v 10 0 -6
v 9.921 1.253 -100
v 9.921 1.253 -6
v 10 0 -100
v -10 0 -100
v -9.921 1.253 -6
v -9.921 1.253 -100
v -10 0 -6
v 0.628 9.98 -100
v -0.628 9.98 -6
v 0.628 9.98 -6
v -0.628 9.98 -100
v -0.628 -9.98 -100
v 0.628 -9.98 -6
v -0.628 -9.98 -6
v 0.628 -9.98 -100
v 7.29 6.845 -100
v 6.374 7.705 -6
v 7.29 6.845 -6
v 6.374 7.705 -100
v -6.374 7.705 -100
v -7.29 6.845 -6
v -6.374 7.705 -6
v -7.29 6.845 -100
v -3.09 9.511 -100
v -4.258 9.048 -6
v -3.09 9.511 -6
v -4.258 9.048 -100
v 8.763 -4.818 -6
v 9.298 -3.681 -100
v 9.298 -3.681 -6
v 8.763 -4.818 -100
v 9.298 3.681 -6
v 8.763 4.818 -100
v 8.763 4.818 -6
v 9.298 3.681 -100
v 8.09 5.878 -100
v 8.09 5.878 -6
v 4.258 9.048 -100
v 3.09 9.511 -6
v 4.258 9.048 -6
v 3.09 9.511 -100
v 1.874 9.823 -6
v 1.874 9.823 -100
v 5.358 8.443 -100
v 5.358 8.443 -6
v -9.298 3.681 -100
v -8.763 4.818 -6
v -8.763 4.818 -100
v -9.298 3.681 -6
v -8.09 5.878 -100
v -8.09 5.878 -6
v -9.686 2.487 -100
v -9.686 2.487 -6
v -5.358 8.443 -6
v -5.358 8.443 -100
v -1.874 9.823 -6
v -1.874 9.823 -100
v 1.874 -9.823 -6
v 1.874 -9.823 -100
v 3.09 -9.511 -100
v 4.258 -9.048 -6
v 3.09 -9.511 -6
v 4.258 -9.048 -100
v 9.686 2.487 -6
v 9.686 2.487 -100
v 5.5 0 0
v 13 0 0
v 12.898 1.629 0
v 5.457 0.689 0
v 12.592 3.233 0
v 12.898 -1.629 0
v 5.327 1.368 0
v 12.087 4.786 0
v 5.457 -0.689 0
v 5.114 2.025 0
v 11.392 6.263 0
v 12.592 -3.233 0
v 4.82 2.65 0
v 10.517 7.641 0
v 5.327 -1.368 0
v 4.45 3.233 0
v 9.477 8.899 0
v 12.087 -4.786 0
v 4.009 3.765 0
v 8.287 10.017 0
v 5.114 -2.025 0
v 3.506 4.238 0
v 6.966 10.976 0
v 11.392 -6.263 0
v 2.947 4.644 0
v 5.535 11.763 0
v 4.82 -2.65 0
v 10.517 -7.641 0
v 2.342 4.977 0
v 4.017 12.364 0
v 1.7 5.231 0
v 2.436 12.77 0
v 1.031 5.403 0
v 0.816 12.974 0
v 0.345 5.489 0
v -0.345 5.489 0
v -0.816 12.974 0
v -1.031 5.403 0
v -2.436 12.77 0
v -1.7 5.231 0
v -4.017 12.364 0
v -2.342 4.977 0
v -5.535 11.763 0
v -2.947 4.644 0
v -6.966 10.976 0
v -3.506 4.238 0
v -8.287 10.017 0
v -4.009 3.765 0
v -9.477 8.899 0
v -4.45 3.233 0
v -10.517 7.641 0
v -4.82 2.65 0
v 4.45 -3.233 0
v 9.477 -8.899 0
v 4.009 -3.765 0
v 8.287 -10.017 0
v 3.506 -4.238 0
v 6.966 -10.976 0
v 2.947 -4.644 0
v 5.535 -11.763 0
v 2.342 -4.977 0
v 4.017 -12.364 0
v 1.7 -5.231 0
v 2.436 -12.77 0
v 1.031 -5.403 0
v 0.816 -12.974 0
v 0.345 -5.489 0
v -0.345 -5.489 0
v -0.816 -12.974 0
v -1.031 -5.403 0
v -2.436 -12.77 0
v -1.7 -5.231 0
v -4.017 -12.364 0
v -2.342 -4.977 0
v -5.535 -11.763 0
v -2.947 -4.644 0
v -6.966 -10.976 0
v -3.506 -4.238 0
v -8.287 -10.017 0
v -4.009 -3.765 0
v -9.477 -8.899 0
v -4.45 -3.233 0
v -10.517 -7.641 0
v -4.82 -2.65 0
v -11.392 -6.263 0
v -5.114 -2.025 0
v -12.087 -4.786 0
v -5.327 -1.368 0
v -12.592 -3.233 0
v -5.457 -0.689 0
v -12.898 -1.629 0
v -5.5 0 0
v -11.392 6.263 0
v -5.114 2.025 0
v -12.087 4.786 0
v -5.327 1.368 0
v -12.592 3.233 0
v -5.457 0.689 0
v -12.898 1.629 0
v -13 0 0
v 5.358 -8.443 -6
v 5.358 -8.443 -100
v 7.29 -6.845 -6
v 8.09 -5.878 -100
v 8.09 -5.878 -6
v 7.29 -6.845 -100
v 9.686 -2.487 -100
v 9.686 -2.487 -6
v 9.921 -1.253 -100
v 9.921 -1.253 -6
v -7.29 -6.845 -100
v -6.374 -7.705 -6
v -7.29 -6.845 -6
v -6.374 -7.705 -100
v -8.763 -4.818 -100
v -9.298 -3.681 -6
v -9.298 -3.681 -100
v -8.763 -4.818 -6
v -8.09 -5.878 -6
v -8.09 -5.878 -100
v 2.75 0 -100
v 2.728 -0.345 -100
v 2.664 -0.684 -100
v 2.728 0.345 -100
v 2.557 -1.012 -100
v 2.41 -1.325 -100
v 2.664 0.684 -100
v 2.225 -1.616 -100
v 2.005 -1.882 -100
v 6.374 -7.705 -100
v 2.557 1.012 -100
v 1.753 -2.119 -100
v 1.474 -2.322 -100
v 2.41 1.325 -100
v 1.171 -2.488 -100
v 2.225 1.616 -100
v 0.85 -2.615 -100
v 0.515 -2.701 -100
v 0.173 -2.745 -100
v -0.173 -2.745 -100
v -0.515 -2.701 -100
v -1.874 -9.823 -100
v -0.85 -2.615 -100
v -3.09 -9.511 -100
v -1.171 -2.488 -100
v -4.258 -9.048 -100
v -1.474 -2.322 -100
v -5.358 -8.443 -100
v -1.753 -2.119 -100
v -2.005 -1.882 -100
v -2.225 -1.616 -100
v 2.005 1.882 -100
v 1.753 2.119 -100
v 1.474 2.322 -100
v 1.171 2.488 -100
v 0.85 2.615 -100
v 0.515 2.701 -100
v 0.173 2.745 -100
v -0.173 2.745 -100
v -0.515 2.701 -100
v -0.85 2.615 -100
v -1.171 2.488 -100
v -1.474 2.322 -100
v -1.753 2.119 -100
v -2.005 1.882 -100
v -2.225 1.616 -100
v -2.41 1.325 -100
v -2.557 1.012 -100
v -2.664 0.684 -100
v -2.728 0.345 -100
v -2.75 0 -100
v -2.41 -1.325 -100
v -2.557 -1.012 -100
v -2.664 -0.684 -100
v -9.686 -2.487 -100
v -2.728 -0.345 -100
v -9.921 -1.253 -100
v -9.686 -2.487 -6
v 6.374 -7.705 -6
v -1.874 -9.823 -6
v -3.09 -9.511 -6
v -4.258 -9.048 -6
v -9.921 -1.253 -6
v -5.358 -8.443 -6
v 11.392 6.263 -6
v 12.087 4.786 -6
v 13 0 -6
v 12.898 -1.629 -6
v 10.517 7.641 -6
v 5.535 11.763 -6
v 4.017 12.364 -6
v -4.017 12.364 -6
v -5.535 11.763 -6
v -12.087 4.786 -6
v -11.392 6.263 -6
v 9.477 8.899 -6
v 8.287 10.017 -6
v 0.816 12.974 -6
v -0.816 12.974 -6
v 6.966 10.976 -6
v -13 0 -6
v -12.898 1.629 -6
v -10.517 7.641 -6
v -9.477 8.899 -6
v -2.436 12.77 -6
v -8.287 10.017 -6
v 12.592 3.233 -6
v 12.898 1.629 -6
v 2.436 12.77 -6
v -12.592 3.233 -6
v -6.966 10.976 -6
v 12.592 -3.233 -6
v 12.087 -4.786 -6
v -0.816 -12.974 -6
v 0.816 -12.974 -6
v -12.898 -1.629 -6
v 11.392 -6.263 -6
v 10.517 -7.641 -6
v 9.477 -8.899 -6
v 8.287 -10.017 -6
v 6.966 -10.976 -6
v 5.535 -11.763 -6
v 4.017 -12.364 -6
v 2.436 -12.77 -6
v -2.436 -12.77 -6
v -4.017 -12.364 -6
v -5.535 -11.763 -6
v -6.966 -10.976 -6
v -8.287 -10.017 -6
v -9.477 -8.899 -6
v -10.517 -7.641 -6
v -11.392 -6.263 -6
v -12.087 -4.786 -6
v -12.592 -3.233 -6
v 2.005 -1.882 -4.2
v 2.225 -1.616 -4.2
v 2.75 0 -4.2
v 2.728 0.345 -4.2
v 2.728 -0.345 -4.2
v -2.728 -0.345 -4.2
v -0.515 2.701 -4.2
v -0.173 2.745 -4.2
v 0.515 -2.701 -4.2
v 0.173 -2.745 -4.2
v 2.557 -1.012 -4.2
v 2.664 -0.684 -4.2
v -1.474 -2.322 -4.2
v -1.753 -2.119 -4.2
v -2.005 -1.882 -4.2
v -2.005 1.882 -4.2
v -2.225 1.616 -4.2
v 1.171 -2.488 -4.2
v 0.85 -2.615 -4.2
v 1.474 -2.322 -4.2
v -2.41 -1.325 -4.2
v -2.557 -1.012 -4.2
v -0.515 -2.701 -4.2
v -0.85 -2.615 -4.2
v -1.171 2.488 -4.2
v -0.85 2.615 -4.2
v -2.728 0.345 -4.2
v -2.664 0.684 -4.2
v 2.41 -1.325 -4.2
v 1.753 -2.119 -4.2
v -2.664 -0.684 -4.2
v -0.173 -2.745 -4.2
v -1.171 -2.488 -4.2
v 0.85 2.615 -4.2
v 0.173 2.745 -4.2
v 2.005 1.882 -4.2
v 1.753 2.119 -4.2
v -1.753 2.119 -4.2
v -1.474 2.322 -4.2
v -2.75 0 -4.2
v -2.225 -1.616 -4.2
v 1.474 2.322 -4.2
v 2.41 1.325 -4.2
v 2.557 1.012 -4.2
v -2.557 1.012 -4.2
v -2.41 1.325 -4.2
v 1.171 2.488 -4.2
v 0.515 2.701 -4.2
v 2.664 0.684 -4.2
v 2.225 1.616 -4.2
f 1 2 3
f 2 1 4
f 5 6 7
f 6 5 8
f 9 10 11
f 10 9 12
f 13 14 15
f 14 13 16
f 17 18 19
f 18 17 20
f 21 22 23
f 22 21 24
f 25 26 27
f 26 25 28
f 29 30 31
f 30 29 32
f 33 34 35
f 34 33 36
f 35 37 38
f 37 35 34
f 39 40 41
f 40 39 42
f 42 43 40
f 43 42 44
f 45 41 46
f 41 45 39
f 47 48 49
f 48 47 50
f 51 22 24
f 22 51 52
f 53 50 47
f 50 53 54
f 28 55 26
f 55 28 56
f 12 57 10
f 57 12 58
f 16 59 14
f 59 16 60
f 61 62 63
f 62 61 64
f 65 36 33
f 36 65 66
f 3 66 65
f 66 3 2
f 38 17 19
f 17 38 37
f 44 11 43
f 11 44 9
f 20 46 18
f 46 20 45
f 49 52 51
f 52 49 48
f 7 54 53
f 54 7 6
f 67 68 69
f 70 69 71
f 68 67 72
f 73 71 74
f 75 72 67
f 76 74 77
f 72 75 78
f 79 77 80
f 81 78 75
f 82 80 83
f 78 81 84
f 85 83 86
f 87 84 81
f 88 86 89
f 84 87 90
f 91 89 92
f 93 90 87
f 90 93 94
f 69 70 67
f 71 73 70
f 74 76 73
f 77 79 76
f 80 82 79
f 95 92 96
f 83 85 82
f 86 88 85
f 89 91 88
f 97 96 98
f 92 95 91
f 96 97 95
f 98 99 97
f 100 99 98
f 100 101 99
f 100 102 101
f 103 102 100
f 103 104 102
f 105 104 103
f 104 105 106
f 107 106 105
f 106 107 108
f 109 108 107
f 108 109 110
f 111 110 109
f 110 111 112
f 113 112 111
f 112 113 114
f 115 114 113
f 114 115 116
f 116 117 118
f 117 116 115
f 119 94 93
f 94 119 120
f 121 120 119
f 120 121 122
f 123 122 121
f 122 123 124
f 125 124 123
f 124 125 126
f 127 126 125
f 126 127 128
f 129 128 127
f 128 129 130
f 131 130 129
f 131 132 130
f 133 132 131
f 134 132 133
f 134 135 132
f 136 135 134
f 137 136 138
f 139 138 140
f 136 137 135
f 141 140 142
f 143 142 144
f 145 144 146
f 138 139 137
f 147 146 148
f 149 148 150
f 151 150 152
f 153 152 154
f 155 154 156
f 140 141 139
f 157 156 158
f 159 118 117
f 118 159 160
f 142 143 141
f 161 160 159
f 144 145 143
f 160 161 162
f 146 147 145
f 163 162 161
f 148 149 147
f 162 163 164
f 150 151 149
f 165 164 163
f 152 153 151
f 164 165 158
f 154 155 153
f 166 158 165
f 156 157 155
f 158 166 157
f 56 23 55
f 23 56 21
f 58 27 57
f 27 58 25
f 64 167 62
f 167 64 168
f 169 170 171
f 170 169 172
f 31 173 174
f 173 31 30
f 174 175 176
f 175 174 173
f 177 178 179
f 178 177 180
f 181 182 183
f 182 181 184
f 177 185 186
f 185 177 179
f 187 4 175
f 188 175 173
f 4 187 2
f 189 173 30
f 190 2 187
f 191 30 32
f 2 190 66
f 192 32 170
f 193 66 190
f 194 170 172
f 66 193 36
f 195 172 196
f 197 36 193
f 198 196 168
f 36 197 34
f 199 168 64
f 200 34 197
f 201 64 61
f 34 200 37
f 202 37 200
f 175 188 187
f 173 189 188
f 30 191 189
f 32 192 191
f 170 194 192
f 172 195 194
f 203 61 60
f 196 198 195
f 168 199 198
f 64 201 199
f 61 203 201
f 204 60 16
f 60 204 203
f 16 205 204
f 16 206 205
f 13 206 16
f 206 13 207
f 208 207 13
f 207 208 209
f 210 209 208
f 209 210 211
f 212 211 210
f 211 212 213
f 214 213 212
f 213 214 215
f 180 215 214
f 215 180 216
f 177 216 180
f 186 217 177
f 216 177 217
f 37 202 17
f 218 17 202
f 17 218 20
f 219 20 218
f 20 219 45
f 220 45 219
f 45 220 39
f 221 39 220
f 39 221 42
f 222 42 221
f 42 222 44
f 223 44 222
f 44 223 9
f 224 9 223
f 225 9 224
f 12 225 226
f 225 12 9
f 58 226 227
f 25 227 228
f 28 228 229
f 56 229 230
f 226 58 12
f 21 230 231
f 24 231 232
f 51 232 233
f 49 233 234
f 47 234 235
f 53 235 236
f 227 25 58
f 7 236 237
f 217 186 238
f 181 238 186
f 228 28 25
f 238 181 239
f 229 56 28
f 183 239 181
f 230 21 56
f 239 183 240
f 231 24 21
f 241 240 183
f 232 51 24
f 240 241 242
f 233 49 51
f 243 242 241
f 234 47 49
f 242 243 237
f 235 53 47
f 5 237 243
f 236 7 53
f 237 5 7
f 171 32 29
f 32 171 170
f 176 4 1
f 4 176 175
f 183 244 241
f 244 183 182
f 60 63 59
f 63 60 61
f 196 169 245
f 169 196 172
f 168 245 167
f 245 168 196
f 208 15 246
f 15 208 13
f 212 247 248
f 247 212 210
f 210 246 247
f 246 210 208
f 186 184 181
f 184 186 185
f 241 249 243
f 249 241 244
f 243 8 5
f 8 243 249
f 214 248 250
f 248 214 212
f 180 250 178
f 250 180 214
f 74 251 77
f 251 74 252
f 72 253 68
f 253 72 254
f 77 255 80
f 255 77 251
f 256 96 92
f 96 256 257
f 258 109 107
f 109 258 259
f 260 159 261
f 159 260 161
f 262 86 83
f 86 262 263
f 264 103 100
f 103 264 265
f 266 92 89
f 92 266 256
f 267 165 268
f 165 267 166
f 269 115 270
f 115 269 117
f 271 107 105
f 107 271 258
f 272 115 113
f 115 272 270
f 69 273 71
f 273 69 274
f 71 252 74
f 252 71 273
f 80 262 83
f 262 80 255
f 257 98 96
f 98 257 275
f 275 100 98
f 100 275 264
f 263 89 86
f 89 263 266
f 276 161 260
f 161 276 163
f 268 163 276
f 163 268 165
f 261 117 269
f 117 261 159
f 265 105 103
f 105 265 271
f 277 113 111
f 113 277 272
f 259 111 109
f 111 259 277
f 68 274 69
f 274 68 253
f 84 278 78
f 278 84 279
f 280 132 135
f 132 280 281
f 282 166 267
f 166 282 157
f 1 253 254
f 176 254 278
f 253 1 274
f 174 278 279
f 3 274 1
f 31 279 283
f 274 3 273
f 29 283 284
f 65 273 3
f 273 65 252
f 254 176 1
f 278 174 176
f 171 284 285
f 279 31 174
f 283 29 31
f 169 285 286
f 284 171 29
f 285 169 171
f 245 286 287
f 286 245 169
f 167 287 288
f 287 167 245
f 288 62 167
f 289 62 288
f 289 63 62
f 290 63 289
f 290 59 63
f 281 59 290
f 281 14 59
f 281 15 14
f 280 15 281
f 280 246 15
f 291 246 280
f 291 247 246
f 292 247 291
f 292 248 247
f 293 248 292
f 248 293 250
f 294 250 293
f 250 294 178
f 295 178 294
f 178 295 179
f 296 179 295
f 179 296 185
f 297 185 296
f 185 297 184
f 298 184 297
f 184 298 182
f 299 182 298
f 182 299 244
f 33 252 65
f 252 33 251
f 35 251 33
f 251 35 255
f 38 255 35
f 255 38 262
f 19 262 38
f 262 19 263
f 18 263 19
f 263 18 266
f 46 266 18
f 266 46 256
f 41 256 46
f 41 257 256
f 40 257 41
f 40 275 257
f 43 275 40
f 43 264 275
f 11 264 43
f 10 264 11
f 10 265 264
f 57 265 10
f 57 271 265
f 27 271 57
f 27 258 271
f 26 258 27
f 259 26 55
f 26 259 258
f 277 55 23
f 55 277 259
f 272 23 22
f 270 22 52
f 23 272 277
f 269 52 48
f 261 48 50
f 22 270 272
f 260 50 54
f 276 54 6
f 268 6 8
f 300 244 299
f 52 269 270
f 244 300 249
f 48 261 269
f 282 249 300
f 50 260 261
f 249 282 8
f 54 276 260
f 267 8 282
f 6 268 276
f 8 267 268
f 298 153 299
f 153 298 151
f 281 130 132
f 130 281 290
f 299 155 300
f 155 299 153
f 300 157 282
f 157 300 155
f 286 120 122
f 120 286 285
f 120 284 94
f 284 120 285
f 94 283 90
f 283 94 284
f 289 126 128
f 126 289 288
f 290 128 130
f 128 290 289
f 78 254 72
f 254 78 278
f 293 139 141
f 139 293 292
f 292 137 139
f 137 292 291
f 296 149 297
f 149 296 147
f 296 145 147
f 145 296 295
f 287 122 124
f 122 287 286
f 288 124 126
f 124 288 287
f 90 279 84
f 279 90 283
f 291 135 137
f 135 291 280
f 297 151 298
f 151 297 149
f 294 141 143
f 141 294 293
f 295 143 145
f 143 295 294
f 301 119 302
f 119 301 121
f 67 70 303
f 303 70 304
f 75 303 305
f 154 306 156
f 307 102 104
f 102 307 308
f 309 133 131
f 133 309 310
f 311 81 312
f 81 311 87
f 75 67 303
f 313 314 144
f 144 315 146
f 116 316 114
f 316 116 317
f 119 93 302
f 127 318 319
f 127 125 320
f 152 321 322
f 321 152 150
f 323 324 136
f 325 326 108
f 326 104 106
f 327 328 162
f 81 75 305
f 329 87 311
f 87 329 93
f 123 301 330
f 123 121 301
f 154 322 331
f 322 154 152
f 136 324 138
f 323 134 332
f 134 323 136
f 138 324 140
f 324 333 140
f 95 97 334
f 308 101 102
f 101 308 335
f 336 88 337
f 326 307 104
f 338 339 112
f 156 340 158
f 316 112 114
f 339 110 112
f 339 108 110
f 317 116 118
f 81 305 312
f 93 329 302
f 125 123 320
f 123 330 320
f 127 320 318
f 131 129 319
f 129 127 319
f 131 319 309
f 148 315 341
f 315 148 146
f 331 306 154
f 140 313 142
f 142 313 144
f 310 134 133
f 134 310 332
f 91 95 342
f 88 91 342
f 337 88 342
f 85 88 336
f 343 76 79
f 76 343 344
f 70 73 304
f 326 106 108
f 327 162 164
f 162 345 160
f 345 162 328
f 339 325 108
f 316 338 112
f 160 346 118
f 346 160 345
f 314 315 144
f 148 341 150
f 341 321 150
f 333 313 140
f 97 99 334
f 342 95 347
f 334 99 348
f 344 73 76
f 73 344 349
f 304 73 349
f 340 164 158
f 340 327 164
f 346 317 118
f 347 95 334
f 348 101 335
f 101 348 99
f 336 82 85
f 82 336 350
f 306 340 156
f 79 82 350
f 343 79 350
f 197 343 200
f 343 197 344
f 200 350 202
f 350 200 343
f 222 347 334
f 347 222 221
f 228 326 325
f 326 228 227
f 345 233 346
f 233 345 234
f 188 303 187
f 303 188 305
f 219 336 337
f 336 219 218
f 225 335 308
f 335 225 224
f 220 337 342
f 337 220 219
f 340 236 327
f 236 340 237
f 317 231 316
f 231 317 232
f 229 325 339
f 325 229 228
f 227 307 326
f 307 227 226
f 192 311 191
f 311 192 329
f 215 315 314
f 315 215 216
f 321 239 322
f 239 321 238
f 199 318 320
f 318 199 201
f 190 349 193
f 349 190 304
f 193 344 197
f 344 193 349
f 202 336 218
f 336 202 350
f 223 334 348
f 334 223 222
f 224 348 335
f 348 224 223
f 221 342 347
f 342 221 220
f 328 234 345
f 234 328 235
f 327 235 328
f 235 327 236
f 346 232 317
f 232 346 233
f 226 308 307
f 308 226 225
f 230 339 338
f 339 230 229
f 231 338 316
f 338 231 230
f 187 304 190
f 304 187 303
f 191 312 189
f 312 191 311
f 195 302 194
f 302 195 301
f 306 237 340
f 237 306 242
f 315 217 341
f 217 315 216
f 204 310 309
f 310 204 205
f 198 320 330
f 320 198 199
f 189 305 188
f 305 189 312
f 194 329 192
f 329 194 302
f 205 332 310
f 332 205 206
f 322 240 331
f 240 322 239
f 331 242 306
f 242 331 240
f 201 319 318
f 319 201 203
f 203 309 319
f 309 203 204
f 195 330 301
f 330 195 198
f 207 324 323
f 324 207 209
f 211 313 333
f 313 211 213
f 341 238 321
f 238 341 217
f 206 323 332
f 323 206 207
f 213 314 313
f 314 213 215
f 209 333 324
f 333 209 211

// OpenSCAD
$fn = 50;


difference() {
	union() {
		translate(v = [0, 0, -100.0000000000]) {
			cylinder(h = 100, r = 10.0000000000);
		}
		translate(v = [0, 0, -6.0000000000]) {
			cylinder(h = 6, r = 13.0000000000);
		}
	}
	union() {
		translate(v = [0, 0, 0]) {
			rotate(a = [0, 0, 0]) {
				difference() {
					union() {
						#translate(v = [0, 0, -100.0000000000]) {
							cylinder(h = 100, r = 2.2500000000);
						}
						#translate(v = [0, 0, -4.2000000000]) {
							cylinder(h = 4.2000000000, r = 10.0000000000, r1 = 2.7500000000, r2 = 5.5000000000);
						}
						#translate(v = [0, 0, -100.0000000000]) {
							cylinder(h = 100, r = 2.7500000000);
						}
						#translate(v = [0, 0, -100.0000000000]) {
							cylinder(h = 100, r = 2.2500000000);
						}
					}
					union();
				}
			}
		}
	}
}
